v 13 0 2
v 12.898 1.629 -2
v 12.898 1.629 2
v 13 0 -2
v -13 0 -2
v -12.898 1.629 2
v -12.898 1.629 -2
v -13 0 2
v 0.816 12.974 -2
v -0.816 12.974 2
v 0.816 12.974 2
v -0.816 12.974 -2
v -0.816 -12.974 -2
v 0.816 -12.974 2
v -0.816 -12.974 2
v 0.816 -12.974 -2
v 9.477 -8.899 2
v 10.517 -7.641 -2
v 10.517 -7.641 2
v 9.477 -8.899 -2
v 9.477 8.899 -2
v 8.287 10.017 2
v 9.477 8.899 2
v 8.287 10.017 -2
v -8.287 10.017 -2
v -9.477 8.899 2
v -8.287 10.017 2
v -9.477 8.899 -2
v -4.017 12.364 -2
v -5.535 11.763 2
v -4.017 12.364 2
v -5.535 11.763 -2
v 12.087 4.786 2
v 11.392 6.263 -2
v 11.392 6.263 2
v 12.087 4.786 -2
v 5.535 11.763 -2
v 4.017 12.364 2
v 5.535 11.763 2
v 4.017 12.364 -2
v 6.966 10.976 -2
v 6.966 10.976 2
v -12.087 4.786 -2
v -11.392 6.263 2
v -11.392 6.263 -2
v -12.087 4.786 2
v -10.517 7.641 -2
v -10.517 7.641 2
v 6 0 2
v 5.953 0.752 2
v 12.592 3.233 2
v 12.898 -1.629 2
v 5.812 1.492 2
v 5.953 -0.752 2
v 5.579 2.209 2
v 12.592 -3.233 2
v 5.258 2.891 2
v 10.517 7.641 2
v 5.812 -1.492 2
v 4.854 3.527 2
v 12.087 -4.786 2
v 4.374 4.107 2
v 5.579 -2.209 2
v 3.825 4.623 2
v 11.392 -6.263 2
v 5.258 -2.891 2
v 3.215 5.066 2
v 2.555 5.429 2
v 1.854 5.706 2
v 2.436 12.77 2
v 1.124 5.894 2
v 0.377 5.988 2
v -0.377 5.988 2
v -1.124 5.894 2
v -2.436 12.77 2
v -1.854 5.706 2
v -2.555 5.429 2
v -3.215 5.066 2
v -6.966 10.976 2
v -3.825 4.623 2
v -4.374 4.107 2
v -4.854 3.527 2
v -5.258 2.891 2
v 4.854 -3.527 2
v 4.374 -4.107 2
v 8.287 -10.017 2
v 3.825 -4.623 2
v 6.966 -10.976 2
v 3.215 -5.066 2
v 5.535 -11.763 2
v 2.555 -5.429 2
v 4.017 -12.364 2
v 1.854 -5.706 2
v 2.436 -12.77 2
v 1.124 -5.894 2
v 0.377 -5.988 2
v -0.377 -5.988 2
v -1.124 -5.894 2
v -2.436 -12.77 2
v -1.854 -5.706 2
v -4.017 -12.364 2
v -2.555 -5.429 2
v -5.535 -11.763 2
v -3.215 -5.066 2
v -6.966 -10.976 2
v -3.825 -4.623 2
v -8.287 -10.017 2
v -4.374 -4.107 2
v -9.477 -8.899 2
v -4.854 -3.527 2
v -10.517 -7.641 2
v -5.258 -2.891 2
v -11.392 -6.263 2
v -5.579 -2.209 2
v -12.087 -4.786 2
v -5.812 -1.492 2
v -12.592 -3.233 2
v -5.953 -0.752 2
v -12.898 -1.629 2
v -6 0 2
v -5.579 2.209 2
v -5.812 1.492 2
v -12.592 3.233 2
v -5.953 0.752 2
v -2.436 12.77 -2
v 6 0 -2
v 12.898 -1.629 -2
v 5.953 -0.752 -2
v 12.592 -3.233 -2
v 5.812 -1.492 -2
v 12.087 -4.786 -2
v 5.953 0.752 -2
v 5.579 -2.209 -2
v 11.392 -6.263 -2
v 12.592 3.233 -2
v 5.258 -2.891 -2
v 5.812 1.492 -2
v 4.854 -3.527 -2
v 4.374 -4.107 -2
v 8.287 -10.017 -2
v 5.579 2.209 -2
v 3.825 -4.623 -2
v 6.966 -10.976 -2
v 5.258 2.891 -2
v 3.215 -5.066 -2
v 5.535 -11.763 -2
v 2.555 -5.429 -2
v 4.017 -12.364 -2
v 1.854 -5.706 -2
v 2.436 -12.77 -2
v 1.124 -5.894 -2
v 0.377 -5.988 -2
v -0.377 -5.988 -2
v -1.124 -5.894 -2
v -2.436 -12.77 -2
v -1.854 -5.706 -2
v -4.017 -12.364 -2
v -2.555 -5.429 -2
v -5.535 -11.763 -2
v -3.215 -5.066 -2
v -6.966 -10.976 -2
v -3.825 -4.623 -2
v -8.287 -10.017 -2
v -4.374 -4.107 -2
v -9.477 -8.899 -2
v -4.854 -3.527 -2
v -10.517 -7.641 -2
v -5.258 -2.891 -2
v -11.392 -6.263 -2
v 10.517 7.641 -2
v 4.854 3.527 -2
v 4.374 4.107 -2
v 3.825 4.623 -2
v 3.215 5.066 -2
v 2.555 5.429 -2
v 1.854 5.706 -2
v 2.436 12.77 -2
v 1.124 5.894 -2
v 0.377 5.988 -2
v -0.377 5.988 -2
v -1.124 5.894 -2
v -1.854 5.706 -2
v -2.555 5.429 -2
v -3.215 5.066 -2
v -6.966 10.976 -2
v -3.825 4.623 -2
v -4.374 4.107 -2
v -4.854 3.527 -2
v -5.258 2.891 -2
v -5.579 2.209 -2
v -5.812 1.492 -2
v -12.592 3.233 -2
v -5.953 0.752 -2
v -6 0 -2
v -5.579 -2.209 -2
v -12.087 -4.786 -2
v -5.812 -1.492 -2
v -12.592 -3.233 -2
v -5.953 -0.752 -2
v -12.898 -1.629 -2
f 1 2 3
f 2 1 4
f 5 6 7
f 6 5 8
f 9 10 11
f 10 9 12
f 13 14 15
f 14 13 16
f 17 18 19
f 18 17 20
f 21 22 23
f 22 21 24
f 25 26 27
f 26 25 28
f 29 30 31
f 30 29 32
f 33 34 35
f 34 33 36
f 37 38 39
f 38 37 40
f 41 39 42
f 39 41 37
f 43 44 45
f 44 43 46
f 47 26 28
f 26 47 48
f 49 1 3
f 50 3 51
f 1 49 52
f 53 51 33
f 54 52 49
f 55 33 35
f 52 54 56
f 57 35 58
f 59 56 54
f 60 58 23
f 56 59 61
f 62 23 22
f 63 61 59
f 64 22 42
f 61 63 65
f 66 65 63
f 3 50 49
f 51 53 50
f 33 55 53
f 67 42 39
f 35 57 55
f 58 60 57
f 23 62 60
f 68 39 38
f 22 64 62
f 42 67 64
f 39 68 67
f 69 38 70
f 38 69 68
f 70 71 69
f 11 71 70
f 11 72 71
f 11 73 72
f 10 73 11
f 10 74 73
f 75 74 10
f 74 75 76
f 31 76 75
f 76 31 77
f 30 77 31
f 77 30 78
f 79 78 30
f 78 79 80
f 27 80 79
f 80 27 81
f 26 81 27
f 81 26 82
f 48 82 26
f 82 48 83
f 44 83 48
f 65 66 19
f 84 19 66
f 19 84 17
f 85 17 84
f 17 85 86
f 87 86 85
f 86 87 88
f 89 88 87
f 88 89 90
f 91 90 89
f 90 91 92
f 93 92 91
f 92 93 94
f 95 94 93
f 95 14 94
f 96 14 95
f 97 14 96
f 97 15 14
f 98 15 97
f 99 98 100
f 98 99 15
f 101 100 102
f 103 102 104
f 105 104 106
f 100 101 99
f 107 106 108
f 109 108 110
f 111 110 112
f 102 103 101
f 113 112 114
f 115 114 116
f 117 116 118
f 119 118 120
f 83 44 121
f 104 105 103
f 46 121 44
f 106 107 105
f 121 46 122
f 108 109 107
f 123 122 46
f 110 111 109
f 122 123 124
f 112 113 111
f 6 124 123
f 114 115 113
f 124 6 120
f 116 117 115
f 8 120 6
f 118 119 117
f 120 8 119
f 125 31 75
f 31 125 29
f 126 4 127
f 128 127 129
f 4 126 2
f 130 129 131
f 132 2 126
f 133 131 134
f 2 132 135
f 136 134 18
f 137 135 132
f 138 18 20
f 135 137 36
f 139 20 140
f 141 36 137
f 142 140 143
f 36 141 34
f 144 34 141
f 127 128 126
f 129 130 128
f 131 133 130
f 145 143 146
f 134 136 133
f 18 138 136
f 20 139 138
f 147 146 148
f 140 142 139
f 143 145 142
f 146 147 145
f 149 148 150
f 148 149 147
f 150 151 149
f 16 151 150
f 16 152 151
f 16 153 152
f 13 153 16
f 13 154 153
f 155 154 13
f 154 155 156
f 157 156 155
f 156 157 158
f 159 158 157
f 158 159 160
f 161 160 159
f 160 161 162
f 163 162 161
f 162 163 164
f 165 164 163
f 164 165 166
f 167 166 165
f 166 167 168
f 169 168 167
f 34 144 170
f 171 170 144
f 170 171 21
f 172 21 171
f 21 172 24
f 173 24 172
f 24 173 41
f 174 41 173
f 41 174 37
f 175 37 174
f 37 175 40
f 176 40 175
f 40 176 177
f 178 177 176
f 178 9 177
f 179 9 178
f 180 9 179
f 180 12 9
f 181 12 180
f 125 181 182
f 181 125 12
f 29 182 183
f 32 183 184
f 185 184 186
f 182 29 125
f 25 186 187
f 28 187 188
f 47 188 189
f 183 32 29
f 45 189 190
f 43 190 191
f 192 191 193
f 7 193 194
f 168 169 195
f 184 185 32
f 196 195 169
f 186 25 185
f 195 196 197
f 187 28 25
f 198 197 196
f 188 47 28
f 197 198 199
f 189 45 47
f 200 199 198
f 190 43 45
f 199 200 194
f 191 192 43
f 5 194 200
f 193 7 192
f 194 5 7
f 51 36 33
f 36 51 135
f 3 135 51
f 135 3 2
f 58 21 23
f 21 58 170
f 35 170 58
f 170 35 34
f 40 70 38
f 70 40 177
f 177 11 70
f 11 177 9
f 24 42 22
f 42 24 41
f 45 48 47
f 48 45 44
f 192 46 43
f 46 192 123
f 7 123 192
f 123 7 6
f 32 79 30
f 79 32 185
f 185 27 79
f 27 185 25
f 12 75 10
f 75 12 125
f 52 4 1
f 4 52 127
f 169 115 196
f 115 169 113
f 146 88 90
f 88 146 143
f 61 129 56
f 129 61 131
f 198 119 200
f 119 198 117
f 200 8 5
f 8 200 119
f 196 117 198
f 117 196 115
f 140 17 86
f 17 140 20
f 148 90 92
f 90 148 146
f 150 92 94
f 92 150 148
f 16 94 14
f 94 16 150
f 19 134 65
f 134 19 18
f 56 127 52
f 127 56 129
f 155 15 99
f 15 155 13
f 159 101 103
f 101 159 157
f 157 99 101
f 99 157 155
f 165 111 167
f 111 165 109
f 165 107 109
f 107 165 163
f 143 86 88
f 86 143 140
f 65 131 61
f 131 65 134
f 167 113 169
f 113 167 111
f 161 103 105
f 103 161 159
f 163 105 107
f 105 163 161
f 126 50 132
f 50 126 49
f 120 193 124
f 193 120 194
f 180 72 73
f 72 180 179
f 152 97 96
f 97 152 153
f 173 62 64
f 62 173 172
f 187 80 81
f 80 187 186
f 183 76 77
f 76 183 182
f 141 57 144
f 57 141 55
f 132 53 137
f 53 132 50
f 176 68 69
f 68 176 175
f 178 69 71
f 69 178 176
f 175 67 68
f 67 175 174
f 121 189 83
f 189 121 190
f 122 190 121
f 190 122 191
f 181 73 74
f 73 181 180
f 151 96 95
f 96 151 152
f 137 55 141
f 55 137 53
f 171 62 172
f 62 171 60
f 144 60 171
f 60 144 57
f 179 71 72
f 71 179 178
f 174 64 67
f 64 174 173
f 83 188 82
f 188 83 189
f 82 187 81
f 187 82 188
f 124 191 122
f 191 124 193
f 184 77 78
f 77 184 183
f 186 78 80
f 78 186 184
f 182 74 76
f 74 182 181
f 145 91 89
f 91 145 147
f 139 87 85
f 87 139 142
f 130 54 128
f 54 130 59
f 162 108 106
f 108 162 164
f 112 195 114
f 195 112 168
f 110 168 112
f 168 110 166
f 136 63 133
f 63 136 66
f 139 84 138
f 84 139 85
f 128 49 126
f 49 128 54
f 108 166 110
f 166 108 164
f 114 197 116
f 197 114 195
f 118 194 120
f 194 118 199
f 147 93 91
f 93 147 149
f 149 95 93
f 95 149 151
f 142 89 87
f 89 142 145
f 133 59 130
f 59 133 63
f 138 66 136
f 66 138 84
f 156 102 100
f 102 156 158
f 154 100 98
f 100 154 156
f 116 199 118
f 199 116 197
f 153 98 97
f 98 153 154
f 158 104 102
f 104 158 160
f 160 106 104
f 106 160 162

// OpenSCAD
$fn = 50;


difference() {
	union() {
		translate(v = [0, 0, -2.0000000000]) {
			cylinder(h = 4, r = 13.0000000000);
		}
	}
	union() {
		translate(v = [0, 0, -100.0000000000]) {
			cylinder(h = 200, r = 6);
		}
	}
}
